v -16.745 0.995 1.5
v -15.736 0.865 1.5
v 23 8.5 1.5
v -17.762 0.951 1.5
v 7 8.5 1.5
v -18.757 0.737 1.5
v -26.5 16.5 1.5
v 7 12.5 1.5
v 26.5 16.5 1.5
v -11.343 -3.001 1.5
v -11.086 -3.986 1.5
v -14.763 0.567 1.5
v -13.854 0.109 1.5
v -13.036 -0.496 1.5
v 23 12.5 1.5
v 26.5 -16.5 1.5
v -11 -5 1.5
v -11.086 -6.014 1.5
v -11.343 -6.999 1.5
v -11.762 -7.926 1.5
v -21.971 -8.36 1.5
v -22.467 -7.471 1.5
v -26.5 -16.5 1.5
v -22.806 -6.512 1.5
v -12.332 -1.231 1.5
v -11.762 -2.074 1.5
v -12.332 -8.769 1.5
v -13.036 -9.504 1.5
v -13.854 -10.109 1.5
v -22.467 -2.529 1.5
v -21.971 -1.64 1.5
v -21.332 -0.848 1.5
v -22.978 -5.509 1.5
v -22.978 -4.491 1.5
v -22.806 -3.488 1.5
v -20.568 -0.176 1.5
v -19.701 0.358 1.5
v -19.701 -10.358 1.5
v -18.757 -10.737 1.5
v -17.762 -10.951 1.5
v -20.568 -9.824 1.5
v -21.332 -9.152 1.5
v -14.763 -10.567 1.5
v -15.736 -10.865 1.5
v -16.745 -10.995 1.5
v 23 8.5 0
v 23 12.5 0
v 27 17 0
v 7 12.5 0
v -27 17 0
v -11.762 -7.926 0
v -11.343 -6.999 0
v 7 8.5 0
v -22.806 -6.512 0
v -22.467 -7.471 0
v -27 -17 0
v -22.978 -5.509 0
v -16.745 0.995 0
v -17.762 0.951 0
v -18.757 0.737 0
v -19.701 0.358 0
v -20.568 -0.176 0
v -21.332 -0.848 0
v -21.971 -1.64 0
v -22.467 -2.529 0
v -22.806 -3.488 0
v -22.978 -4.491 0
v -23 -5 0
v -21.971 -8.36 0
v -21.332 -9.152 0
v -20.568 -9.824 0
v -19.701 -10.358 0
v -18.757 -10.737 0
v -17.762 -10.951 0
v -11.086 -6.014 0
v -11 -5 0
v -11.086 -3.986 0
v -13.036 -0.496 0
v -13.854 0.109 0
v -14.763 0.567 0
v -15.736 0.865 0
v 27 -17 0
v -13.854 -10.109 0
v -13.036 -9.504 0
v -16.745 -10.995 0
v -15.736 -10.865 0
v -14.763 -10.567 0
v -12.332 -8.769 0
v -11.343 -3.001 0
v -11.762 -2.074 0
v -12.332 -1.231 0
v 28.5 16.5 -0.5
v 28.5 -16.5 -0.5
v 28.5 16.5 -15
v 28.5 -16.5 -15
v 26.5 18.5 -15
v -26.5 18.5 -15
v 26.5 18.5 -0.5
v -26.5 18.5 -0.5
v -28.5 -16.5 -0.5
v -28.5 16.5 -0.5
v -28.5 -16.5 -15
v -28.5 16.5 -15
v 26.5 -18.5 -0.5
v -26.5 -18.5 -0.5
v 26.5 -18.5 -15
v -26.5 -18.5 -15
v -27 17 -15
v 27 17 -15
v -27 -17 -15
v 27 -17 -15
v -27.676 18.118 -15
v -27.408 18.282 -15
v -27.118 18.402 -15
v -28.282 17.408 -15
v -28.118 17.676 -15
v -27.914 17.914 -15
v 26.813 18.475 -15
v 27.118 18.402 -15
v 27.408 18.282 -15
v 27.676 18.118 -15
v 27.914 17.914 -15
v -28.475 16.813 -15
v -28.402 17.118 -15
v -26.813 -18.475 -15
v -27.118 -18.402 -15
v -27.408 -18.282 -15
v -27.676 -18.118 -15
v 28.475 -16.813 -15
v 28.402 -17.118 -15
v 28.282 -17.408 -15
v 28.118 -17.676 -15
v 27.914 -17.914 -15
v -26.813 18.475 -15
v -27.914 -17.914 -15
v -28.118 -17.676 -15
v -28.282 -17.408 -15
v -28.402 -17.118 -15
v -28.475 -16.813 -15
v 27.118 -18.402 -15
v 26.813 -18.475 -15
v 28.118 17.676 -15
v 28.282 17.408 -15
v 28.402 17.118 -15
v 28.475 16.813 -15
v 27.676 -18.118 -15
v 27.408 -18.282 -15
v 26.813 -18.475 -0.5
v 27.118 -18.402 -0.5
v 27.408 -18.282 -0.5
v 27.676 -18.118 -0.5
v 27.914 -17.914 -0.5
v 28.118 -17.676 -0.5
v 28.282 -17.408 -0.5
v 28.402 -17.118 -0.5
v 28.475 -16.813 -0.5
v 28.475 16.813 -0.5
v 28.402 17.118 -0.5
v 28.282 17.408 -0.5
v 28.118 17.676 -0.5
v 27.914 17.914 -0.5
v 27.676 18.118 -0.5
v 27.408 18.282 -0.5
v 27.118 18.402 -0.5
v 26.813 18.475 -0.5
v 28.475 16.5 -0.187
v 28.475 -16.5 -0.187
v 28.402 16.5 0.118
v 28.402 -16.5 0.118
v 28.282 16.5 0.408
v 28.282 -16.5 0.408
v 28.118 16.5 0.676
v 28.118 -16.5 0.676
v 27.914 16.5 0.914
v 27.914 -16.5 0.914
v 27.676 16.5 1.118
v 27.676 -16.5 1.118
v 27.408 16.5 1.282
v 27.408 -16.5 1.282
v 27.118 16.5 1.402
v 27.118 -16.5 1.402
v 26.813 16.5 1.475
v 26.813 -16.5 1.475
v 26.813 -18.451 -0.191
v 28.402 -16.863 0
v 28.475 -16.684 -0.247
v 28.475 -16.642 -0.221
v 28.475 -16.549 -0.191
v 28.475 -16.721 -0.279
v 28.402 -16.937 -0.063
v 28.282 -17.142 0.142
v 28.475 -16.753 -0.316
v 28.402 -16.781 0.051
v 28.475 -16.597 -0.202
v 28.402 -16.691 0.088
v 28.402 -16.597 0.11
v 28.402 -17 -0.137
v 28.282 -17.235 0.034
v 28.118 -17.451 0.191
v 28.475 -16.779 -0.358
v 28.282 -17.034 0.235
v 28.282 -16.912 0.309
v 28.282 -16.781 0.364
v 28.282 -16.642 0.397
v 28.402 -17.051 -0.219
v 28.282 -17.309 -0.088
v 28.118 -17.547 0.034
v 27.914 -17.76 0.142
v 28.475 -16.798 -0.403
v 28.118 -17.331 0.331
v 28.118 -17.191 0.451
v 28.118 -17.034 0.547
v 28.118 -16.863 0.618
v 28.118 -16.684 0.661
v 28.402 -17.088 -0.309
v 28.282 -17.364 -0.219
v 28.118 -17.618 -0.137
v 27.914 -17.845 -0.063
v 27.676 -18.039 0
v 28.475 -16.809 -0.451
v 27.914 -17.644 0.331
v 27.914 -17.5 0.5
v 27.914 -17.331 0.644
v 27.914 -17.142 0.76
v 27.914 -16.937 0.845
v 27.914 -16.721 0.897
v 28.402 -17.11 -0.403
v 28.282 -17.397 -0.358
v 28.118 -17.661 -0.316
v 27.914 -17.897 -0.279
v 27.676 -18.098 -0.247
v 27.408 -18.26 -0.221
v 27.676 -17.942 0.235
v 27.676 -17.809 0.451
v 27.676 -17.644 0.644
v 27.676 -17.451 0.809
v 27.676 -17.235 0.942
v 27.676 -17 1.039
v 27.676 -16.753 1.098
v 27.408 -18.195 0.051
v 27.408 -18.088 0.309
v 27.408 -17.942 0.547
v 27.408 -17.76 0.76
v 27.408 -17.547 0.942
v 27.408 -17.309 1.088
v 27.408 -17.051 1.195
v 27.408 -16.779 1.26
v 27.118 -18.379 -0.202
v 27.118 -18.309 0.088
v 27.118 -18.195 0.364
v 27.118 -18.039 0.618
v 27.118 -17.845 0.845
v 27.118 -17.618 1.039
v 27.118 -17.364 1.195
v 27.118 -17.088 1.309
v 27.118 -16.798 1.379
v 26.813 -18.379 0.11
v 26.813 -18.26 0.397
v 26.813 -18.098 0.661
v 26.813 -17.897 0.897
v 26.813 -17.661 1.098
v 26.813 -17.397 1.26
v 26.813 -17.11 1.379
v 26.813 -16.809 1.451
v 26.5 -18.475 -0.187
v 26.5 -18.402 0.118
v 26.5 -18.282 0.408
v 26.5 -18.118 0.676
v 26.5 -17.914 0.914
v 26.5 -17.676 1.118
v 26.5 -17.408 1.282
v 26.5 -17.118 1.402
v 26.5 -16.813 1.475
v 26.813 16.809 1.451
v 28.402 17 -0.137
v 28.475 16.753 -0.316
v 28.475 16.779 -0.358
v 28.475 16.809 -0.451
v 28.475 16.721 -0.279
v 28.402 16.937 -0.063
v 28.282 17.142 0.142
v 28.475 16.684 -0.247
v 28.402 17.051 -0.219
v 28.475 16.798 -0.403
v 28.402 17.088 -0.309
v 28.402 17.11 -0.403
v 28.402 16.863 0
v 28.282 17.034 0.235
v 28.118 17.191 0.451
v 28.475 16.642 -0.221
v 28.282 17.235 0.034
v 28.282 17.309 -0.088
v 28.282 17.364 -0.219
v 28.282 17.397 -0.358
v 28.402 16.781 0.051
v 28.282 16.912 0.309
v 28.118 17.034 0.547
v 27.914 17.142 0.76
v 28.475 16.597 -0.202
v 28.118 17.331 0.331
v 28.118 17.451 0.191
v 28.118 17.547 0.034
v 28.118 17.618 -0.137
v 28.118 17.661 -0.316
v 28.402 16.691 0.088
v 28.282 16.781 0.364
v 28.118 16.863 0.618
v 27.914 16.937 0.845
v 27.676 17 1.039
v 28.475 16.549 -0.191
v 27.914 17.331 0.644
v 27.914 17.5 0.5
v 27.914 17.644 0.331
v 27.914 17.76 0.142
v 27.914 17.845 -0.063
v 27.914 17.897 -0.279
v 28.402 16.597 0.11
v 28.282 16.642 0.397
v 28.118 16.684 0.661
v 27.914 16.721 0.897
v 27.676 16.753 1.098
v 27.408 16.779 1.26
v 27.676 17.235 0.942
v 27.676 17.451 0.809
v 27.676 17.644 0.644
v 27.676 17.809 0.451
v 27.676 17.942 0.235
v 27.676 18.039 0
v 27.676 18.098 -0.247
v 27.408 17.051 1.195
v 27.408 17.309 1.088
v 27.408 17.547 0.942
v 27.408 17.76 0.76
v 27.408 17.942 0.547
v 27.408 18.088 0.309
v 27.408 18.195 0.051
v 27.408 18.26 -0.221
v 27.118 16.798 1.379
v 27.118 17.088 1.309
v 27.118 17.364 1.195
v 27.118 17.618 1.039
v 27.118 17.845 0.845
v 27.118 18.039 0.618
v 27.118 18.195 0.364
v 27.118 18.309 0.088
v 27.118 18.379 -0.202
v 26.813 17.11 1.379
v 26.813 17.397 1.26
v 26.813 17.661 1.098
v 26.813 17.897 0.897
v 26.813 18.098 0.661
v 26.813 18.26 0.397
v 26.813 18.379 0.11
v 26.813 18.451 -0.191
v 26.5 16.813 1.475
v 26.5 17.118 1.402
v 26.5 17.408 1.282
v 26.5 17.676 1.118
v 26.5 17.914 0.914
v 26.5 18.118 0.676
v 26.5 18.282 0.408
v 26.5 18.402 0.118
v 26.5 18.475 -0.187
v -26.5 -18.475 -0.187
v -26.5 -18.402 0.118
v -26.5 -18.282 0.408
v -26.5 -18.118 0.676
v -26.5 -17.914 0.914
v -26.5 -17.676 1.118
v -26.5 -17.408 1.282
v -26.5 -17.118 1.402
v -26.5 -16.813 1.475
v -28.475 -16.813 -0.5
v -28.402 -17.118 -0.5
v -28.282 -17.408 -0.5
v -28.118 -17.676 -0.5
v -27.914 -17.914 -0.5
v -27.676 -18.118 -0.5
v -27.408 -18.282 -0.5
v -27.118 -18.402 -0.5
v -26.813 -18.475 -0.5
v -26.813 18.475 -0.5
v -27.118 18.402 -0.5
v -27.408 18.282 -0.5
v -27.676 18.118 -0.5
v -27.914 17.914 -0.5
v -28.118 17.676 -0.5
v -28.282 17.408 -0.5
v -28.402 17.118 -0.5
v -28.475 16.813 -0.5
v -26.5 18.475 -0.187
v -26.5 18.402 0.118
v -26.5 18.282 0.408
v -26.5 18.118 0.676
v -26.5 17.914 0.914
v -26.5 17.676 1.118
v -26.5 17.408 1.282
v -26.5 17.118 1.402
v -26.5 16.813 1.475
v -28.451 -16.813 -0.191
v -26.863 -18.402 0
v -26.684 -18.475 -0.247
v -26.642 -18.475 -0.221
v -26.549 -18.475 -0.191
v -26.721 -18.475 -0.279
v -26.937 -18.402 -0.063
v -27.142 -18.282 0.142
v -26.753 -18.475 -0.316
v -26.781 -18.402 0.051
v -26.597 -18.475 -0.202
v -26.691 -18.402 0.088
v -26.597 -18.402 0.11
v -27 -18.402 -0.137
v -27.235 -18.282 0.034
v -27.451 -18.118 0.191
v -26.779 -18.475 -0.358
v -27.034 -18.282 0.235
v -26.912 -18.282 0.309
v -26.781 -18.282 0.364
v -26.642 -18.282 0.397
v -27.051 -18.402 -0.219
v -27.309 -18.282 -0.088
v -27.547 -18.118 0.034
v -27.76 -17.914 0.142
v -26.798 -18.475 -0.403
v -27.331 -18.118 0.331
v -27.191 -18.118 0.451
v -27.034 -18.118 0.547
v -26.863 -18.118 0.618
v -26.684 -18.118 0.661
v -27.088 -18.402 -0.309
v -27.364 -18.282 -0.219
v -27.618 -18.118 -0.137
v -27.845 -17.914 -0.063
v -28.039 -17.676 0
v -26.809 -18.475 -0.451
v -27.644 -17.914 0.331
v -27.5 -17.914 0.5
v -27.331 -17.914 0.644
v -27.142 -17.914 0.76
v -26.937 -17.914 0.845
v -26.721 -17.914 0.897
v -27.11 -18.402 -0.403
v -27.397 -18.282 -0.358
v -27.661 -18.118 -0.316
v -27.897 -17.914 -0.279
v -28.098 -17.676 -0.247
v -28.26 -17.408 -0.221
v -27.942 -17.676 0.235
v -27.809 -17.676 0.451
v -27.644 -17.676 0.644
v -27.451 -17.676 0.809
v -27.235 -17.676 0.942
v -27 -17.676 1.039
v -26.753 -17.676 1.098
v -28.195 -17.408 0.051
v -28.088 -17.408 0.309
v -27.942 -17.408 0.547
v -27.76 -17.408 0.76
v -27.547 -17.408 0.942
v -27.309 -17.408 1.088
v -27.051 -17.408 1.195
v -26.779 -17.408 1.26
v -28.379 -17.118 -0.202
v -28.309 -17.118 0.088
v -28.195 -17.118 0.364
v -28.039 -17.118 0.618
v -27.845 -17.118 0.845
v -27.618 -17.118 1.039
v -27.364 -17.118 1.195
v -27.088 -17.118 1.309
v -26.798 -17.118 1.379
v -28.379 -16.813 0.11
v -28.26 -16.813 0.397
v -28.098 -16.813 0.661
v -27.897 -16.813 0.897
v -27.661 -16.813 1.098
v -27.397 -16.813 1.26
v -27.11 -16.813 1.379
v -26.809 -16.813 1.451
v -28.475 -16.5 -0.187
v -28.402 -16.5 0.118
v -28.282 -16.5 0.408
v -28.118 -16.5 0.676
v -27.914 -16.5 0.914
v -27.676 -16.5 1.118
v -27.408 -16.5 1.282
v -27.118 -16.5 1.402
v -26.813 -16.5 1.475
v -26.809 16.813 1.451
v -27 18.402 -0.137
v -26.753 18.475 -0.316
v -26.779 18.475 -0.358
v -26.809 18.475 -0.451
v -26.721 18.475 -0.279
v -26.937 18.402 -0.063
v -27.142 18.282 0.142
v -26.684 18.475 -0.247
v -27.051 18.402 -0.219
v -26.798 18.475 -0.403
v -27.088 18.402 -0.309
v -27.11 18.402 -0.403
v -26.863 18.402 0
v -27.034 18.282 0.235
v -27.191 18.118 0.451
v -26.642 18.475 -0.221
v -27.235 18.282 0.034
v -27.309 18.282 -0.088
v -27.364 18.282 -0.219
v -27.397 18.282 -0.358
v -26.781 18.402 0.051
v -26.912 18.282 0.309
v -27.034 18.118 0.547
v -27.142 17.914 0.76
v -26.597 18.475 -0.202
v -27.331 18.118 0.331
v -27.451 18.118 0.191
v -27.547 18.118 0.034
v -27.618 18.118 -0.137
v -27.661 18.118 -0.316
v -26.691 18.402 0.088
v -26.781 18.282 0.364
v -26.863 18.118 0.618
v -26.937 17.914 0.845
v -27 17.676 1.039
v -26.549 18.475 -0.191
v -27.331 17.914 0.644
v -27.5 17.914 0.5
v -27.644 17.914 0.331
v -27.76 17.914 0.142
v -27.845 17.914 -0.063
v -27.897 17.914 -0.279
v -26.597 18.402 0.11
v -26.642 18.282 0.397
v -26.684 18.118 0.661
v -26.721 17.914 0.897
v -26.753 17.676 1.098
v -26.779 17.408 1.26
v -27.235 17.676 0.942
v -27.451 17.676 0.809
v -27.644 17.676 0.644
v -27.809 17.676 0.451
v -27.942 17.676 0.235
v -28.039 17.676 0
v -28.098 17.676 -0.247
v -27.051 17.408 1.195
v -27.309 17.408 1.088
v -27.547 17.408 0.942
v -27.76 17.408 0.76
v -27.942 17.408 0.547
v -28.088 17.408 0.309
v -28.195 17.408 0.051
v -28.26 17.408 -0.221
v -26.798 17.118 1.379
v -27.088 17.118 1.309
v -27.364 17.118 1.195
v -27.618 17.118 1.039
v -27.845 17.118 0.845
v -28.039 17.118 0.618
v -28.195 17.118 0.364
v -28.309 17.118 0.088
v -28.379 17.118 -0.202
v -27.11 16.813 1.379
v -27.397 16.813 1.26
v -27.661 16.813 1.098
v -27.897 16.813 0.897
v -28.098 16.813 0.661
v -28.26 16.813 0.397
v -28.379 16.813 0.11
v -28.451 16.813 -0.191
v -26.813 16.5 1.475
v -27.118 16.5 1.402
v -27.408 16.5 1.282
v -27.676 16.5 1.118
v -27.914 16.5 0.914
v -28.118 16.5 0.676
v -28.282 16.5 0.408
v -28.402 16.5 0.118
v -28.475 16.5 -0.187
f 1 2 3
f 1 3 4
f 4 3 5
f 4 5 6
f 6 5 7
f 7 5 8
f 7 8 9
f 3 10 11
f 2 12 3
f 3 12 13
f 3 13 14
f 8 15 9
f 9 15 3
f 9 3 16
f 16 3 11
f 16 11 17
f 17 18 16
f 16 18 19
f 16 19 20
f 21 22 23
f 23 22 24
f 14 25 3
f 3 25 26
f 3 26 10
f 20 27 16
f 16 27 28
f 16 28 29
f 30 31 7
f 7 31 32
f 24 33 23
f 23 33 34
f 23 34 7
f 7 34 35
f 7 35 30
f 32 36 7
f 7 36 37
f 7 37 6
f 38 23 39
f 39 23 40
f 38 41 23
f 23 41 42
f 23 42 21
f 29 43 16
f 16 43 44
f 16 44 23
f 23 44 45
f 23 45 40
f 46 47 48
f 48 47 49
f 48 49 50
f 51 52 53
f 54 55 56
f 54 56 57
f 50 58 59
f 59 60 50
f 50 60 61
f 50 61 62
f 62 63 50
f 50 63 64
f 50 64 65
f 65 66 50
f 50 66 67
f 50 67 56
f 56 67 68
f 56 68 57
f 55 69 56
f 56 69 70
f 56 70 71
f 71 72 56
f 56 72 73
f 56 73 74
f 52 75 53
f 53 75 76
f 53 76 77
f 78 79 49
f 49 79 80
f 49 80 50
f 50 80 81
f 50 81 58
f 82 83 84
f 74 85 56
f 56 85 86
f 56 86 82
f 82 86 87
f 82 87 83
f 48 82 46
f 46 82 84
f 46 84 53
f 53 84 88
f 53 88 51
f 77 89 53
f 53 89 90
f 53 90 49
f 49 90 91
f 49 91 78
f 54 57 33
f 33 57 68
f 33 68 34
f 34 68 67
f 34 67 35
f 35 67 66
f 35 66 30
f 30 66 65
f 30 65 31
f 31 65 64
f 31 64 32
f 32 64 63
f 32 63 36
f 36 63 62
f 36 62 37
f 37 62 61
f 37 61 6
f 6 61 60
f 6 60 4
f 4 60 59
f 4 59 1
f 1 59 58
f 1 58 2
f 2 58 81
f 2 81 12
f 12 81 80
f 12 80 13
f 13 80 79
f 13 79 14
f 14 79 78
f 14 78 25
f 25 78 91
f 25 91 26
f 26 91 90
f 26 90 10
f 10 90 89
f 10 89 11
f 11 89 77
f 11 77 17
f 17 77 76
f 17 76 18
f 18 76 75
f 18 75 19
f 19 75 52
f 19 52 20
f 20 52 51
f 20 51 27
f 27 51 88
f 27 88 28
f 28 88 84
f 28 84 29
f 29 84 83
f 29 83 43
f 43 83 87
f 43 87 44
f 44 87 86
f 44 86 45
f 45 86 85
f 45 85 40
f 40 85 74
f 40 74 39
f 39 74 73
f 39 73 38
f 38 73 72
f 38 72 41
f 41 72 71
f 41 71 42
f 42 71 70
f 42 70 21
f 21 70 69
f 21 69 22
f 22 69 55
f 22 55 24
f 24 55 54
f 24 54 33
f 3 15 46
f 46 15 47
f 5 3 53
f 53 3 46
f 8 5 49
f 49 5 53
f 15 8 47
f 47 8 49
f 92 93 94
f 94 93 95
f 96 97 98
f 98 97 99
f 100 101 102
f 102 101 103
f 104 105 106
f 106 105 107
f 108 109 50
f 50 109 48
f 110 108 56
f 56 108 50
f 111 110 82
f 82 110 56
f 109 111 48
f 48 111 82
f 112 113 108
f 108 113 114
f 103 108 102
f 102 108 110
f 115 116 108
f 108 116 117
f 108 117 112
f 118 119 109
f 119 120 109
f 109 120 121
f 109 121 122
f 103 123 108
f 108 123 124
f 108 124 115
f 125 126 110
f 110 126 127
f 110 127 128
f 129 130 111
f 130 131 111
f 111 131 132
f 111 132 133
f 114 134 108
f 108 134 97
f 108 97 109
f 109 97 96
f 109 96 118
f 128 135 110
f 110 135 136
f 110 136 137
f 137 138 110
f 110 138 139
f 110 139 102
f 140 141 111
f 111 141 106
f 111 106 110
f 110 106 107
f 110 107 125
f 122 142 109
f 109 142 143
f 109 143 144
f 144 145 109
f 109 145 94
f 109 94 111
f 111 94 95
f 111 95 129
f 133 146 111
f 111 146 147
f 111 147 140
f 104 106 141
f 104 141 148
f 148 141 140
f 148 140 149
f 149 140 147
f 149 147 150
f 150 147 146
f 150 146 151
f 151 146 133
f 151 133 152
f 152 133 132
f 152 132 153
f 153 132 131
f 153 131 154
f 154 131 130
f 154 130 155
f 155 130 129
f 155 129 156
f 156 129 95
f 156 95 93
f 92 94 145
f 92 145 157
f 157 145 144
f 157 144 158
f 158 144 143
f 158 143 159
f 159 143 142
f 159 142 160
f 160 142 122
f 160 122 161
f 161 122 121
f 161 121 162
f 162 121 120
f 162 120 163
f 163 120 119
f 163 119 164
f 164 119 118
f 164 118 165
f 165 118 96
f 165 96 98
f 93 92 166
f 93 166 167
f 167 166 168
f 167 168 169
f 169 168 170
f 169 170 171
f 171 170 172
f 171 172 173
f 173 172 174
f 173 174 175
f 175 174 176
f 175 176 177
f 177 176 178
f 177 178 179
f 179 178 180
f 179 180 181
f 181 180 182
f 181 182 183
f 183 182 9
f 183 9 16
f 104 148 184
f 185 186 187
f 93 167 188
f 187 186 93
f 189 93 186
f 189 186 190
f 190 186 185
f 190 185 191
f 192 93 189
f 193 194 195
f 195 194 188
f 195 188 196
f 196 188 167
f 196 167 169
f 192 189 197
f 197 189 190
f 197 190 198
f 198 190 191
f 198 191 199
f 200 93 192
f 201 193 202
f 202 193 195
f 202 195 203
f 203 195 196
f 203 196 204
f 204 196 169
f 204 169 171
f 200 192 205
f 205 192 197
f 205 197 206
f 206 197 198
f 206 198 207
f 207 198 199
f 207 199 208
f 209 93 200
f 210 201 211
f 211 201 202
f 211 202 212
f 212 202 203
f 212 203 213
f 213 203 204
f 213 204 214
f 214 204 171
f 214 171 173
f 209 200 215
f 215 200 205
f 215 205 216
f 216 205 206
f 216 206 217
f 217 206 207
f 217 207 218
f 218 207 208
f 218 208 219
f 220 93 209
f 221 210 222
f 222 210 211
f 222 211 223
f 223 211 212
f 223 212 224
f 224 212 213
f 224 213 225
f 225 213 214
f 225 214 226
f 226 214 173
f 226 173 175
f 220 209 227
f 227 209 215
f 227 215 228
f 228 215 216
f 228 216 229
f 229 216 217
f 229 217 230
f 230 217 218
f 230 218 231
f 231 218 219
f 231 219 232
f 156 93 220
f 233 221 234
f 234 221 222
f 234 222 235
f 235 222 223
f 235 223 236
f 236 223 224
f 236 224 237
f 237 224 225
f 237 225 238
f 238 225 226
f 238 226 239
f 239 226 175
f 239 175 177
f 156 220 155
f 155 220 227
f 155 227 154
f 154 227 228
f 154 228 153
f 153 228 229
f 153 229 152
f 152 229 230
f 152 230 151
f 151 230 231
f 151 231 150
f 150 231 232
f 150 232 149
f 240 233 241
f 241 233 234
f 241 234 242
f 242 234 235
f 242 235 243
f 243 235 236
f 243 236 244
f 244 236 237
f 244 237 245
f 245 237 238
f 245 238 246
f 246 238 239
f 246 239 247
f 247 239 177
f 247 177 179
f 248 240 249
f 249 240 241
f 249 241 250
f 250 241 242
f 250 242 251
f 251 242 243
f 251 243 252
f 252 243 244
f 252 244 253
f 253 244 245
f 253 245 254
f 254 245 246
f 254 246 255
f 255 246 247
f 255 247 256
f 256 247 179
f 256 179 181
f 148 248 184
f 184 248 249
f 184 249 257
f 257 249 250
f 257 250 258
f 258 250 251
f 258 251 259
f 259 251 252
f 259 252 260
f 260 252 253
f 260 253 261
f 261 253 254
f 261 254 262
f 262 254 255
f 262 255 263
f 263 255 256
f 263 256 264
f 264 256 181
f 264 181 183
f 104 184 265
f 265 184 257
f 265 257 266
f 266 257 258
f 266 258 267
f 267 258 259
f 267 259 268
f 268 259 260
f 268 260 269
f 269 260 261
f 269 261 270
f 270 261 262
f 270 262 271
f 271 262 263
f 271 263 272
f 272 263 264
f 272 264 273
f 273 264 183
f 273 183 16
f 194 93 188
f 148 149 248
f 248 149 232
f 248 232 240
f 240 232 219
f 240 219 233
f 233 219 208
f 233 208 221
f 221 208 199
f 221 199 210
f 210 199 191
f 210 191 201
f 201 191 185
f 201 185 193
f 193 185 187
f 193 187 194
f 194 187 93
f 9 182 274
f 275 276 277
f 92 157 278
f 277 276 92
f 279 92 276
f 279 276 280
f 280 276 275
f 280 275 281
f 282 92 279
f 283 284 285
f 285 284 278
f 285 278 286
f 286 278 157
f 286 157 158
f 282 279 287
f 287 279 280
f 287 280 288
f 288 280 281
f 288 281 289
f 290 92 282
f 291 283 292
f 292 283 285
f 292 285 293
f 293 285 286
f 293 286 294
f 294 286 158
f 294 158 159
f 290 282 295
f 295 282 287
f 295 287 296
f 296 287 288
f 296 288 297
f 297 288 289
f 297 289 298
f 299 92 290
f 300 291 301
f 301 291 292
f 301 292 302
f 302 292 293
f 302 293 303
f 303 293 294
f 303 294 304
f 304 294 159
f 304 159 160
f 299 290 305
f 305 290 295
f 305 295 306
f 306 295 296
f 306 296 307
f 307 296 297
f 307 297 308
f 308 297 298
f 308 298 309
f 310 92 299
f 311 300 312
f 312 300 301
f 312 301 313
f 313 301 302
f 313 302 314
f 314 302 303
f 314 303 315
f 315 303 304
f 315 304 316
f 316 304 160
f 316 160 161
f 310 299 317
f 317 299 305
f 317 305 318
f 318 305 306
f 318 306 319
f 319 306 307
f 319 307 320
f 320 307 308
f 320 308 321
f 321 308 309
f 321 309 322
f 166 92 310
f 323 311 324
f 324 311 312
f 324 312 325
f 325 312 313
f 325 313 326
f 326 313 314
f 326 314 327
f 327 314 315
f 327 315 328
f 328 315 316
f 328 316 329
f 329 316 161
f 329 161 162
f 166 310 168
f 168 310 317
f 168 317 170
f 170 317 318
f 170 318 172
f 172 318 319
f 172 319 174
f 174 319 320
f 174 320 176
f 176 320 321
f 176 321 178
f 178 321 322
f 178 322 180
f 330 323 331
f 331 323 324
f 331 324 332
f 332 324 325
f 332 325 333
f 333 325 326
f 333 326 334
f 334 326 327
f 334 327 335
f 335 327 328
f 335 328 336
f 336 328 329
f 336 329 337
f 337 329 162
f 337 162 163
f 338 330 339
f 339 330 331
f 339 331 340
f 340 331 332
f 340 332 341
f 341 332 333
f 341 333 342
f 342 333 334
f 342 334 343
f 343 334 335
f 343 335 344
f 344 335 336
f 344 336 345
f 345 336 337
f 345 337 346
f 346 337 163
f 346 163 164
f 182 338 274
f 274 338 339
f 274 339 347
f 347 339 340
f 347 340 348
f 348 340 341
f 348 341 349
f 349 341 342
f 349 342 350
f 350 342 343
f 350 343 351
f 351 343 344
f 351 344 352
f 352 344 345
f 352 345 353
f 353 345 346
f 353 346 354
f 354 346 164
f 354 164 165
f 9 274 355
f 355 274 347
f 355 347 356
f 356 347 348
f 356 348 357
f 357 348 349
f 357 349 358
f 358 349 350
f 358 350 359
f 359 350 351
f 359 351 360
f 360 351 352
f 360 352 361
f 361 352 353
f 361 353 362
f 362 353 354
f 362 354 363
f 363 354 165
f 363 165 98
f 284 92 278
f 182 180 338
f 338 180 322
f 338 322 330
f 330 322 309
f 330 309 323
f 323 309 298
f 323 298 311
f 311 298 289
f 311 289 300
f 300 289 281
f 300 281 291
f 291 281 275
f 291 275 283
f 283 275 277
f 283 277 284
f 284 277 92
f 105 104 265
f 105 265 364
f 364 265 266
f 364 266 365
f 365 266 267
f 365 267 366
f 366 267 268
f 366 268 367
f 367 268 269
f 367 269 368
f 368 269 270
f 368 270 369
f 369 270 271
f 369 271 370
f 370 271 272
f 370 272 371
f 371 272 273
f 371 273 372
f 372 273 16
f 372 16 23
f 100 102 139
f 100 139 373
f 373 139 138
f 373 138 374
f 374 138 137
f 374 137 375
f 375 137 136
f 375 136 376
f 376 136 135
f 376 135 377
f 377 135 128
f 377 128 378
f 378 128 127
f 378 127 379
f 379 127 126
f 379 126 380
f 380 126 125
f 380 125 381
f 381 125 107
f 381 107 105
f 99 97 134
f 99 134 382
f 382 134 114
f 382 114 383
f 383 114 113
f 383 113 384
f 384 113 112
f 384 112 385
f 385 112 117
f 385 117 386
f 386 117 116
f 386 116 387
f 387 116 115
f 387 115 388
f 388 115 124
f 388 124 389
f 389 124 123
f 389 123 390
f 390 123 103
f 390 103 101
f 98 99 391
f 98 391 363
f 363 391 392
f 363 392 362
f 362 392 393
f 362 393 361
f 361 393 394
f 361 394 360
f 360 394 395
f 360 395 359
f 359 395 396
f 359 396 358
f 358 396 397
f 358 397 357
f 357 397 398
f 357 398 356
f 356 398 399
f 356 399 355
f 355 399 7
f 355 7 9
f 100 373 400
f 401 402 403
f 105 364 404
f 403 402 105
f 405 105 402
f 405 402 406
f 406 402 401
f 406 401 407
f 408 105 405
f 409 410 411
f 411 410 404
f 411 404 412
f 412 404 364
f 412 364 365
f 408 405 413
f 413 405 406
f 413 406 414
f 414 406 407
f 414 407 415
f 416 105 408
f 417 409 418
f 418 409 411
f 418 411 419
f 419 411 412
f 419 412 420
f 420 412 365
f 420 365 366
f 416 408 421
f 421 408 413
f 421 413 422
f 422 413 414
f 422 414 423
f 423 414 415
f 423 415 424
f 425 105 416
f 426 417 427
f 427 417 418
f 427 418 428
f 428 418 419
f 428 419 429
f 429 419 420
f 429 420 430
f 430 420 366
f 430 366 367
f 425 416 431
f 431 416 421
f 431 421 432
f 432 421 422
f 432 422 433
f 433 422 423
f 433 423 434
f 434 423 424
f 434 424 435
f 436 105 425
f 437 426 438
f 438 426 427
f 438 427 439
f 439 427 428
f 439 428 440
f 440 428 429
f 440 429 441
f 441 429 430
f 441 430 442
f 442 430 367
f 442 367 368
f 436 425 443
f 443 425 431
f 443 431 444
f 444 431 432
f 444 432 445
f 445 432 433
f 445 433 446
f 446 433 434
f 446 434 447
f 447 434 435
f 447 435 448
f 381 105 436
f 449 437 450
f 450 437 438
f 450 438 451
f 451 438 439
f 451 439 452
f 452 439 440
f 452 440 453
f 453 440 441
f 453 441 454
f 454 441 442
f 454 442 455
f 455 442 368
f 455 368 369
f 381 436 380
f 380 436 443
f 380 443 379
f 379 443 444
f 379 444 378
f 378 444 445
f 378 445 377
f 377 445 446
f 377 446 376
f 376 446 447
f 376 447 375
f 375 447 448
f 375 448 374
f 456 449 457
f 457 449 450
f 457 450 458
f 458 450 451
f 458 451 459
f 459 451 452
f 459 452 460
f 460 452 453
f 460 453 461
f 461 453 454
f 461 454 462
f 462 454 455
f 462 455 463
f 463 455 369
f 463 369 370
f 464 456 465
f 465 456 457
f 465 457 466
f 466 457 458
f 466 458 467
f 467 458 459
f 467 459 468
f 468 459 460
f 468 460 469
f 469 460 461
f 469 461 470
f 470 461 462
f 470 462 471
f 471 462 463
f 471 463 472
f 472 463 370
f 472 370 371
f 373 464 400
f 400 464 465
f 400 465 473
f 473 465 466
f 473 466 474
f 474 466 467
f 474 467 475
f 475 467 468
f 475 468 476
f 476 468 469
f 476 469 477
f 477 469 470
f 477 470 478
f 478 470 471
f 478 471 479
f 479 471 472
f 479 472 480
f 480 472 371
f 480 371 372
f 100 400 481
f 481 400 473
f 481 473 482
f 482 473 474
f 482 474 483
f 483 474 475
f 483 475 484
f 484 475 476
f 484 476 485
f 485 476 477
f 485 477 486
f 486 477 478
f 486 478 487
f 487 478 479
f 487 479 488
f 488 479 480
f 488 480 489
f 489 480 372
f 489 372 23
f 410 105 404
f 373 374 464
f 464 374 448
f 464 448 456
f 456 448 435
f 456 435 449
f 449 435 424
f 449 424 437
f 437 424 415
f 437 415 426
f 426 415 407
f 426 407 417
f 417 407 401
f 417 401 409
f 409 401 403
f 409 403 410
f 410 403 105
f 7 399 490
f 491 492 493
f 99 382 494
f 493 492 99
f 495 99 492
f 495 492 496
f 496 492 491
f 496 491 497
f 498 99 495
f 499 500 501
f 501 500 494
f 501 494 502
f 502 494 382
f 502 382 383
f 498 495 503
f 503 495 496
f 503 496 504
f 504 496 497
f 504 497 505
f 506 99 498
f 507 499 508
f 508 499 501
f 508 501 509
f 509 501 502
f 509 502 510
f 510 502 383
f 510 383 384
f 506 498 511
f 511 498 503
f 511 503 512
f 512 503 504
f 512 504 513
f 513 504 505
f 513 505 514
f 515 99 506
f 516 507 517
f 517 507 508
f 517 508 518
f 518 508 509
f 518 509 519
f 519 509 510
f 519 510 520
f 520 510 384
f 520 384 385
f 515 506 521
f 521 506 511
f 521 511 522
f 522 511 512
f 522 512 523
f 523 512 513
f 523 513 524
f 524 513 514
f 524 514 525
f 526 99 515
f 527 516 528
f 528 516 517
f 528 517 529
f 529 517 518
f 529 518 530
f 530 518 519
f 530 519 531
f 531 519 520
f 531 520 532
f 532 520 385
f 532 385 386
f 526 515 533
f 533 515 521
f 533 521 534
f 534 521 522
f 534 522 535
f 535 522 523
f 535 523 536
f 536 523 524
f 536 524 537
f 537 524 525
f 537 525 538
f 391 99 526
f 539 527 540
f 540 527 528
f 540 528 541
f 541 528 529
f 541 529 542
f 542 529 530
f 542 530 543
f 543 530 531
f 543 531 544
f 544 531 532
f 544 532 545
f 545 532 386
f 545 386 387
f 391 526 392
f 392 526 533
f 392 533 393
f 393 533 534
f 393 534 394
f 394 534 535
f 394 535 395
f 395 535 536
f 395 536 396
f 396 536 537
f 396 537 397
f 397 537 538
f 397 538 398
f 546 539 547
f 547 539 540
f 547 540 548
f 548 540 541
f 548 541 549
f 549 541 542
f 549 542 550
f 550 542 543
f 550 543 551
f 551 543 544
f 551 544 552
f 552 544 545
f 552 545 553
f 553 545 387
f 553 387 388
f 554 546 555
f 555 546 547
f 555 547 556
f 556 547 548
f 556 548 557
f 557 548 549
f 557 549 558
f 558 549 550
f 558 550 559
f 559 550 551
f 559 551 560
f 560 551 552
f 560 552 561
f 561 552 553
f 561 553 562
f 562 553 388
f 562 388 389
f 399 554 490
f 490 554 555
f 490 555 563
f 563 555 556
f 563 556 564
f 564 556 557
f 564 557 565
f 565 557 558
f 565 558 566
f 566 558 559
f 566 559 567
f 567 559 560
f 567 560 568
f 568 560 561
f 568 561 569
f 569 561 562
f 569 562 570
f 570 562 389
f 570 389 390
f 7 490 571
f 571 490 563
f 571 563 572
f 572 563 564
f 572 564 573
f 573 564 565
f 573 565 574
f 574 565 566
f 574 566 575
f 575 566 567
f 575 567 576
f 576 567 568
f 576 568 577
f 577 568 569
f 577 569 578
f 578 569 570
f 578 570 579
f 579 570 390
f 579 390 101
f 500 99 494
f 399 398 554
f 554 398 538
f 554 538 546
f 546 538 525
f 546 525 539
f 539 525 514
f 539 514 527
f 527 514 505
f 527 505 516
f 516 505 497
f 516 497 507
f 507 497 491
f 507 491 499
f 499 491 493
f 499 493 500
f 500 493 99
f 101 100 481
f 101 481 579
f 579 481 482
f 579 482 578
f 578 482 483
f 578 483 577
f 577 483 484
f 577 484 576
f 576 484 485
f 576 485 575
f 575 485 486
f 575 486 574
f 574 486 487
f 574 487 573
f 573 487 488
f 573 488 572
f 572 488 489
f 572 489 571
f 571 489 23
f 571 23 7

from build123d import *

# Parameters (mm, degrees)
BOSS_EXTRUDE1_DEPTH      = 1.5
SKETCH2_R                = 6
SKETCH2_W                = 16
SKETCH2_H                = 4
CUT_EXTRUDE1_DEPTH       = 2
SKETCH3_W                = 57
SKETCH3_H                = 37
SKETCH3_W_2              = 54
SKETCH3_H_2              = 34
BOSS_EXTRUDE2_DEPTH      = 15
BOSS_EXTRUDE2_DEPTH_BACK = 1.5
FILLET1_R                = 2


with BuildPart() as part:
    # Sketch1 → Boss-Extrude1 (new body)
    with BuildSketch(Plane.XY):
        Polygon((-27, -17), (-7.5, -17), (7.5, -17), (27, -17), (27, 17), (-27, 17), align=None)
    extrude(amount=BOSS_EXTRUDE1_DEPTH)

    # Sketch2 → Cut-Extrude1 (cut)
    with BuildSketch(Plane.XY.offset(1.5)):
        with Locations((-17, -5)):
            Circle(SKETCH2_R)
        with Locations((15, 10.5)):
            Rectangle(SKETCH2_W, SKETCH2_H)
    extrude(amount=-CUT_EXTRUDE1_DEPTH, mode=Mode.SUBTRACT)

    # Sketch3 → Boss-Extrude2 (add, two sides)
    with BuildSketch(Plane(origin=(0, 0, 0), x_dir=(-1, 0, 0), z_dir=(0, 0, -1))) as boss_extrude2_sk:
        Rectangle(SKETCH3_W, SKETCH3_H)
        Rectangle(SKETCH3_W_2, SKETCH3_H_2, mode=Mode.SUBTRACT)
    extrude(amount=BOSS_EXTRUDE2_DEPTH)
    extrude(boss_extrude2_sk.sketch, amount=-BOSS_EXTRUDE2_DEPTH_BACK)

    # Fillet1
    fillet1_edges = [part.edges().sort_by_distance(p)[0] for p in [
        (28.5, -18.5, -6.75),
        (28.5, 0, 1.5),
        (28.5, 18.5, -6.75),
        (0, 18.5, 1.5),
        (-28.5, 18.5, -6.75),
        (-28.5, 0, 1.5),
        (-28.5, -18.5, -6.75),
        (0, -18.5, 1.5),
    ]]
    fillet(fillet1_edges, radius=FILLET1_R)


solid = part.part
